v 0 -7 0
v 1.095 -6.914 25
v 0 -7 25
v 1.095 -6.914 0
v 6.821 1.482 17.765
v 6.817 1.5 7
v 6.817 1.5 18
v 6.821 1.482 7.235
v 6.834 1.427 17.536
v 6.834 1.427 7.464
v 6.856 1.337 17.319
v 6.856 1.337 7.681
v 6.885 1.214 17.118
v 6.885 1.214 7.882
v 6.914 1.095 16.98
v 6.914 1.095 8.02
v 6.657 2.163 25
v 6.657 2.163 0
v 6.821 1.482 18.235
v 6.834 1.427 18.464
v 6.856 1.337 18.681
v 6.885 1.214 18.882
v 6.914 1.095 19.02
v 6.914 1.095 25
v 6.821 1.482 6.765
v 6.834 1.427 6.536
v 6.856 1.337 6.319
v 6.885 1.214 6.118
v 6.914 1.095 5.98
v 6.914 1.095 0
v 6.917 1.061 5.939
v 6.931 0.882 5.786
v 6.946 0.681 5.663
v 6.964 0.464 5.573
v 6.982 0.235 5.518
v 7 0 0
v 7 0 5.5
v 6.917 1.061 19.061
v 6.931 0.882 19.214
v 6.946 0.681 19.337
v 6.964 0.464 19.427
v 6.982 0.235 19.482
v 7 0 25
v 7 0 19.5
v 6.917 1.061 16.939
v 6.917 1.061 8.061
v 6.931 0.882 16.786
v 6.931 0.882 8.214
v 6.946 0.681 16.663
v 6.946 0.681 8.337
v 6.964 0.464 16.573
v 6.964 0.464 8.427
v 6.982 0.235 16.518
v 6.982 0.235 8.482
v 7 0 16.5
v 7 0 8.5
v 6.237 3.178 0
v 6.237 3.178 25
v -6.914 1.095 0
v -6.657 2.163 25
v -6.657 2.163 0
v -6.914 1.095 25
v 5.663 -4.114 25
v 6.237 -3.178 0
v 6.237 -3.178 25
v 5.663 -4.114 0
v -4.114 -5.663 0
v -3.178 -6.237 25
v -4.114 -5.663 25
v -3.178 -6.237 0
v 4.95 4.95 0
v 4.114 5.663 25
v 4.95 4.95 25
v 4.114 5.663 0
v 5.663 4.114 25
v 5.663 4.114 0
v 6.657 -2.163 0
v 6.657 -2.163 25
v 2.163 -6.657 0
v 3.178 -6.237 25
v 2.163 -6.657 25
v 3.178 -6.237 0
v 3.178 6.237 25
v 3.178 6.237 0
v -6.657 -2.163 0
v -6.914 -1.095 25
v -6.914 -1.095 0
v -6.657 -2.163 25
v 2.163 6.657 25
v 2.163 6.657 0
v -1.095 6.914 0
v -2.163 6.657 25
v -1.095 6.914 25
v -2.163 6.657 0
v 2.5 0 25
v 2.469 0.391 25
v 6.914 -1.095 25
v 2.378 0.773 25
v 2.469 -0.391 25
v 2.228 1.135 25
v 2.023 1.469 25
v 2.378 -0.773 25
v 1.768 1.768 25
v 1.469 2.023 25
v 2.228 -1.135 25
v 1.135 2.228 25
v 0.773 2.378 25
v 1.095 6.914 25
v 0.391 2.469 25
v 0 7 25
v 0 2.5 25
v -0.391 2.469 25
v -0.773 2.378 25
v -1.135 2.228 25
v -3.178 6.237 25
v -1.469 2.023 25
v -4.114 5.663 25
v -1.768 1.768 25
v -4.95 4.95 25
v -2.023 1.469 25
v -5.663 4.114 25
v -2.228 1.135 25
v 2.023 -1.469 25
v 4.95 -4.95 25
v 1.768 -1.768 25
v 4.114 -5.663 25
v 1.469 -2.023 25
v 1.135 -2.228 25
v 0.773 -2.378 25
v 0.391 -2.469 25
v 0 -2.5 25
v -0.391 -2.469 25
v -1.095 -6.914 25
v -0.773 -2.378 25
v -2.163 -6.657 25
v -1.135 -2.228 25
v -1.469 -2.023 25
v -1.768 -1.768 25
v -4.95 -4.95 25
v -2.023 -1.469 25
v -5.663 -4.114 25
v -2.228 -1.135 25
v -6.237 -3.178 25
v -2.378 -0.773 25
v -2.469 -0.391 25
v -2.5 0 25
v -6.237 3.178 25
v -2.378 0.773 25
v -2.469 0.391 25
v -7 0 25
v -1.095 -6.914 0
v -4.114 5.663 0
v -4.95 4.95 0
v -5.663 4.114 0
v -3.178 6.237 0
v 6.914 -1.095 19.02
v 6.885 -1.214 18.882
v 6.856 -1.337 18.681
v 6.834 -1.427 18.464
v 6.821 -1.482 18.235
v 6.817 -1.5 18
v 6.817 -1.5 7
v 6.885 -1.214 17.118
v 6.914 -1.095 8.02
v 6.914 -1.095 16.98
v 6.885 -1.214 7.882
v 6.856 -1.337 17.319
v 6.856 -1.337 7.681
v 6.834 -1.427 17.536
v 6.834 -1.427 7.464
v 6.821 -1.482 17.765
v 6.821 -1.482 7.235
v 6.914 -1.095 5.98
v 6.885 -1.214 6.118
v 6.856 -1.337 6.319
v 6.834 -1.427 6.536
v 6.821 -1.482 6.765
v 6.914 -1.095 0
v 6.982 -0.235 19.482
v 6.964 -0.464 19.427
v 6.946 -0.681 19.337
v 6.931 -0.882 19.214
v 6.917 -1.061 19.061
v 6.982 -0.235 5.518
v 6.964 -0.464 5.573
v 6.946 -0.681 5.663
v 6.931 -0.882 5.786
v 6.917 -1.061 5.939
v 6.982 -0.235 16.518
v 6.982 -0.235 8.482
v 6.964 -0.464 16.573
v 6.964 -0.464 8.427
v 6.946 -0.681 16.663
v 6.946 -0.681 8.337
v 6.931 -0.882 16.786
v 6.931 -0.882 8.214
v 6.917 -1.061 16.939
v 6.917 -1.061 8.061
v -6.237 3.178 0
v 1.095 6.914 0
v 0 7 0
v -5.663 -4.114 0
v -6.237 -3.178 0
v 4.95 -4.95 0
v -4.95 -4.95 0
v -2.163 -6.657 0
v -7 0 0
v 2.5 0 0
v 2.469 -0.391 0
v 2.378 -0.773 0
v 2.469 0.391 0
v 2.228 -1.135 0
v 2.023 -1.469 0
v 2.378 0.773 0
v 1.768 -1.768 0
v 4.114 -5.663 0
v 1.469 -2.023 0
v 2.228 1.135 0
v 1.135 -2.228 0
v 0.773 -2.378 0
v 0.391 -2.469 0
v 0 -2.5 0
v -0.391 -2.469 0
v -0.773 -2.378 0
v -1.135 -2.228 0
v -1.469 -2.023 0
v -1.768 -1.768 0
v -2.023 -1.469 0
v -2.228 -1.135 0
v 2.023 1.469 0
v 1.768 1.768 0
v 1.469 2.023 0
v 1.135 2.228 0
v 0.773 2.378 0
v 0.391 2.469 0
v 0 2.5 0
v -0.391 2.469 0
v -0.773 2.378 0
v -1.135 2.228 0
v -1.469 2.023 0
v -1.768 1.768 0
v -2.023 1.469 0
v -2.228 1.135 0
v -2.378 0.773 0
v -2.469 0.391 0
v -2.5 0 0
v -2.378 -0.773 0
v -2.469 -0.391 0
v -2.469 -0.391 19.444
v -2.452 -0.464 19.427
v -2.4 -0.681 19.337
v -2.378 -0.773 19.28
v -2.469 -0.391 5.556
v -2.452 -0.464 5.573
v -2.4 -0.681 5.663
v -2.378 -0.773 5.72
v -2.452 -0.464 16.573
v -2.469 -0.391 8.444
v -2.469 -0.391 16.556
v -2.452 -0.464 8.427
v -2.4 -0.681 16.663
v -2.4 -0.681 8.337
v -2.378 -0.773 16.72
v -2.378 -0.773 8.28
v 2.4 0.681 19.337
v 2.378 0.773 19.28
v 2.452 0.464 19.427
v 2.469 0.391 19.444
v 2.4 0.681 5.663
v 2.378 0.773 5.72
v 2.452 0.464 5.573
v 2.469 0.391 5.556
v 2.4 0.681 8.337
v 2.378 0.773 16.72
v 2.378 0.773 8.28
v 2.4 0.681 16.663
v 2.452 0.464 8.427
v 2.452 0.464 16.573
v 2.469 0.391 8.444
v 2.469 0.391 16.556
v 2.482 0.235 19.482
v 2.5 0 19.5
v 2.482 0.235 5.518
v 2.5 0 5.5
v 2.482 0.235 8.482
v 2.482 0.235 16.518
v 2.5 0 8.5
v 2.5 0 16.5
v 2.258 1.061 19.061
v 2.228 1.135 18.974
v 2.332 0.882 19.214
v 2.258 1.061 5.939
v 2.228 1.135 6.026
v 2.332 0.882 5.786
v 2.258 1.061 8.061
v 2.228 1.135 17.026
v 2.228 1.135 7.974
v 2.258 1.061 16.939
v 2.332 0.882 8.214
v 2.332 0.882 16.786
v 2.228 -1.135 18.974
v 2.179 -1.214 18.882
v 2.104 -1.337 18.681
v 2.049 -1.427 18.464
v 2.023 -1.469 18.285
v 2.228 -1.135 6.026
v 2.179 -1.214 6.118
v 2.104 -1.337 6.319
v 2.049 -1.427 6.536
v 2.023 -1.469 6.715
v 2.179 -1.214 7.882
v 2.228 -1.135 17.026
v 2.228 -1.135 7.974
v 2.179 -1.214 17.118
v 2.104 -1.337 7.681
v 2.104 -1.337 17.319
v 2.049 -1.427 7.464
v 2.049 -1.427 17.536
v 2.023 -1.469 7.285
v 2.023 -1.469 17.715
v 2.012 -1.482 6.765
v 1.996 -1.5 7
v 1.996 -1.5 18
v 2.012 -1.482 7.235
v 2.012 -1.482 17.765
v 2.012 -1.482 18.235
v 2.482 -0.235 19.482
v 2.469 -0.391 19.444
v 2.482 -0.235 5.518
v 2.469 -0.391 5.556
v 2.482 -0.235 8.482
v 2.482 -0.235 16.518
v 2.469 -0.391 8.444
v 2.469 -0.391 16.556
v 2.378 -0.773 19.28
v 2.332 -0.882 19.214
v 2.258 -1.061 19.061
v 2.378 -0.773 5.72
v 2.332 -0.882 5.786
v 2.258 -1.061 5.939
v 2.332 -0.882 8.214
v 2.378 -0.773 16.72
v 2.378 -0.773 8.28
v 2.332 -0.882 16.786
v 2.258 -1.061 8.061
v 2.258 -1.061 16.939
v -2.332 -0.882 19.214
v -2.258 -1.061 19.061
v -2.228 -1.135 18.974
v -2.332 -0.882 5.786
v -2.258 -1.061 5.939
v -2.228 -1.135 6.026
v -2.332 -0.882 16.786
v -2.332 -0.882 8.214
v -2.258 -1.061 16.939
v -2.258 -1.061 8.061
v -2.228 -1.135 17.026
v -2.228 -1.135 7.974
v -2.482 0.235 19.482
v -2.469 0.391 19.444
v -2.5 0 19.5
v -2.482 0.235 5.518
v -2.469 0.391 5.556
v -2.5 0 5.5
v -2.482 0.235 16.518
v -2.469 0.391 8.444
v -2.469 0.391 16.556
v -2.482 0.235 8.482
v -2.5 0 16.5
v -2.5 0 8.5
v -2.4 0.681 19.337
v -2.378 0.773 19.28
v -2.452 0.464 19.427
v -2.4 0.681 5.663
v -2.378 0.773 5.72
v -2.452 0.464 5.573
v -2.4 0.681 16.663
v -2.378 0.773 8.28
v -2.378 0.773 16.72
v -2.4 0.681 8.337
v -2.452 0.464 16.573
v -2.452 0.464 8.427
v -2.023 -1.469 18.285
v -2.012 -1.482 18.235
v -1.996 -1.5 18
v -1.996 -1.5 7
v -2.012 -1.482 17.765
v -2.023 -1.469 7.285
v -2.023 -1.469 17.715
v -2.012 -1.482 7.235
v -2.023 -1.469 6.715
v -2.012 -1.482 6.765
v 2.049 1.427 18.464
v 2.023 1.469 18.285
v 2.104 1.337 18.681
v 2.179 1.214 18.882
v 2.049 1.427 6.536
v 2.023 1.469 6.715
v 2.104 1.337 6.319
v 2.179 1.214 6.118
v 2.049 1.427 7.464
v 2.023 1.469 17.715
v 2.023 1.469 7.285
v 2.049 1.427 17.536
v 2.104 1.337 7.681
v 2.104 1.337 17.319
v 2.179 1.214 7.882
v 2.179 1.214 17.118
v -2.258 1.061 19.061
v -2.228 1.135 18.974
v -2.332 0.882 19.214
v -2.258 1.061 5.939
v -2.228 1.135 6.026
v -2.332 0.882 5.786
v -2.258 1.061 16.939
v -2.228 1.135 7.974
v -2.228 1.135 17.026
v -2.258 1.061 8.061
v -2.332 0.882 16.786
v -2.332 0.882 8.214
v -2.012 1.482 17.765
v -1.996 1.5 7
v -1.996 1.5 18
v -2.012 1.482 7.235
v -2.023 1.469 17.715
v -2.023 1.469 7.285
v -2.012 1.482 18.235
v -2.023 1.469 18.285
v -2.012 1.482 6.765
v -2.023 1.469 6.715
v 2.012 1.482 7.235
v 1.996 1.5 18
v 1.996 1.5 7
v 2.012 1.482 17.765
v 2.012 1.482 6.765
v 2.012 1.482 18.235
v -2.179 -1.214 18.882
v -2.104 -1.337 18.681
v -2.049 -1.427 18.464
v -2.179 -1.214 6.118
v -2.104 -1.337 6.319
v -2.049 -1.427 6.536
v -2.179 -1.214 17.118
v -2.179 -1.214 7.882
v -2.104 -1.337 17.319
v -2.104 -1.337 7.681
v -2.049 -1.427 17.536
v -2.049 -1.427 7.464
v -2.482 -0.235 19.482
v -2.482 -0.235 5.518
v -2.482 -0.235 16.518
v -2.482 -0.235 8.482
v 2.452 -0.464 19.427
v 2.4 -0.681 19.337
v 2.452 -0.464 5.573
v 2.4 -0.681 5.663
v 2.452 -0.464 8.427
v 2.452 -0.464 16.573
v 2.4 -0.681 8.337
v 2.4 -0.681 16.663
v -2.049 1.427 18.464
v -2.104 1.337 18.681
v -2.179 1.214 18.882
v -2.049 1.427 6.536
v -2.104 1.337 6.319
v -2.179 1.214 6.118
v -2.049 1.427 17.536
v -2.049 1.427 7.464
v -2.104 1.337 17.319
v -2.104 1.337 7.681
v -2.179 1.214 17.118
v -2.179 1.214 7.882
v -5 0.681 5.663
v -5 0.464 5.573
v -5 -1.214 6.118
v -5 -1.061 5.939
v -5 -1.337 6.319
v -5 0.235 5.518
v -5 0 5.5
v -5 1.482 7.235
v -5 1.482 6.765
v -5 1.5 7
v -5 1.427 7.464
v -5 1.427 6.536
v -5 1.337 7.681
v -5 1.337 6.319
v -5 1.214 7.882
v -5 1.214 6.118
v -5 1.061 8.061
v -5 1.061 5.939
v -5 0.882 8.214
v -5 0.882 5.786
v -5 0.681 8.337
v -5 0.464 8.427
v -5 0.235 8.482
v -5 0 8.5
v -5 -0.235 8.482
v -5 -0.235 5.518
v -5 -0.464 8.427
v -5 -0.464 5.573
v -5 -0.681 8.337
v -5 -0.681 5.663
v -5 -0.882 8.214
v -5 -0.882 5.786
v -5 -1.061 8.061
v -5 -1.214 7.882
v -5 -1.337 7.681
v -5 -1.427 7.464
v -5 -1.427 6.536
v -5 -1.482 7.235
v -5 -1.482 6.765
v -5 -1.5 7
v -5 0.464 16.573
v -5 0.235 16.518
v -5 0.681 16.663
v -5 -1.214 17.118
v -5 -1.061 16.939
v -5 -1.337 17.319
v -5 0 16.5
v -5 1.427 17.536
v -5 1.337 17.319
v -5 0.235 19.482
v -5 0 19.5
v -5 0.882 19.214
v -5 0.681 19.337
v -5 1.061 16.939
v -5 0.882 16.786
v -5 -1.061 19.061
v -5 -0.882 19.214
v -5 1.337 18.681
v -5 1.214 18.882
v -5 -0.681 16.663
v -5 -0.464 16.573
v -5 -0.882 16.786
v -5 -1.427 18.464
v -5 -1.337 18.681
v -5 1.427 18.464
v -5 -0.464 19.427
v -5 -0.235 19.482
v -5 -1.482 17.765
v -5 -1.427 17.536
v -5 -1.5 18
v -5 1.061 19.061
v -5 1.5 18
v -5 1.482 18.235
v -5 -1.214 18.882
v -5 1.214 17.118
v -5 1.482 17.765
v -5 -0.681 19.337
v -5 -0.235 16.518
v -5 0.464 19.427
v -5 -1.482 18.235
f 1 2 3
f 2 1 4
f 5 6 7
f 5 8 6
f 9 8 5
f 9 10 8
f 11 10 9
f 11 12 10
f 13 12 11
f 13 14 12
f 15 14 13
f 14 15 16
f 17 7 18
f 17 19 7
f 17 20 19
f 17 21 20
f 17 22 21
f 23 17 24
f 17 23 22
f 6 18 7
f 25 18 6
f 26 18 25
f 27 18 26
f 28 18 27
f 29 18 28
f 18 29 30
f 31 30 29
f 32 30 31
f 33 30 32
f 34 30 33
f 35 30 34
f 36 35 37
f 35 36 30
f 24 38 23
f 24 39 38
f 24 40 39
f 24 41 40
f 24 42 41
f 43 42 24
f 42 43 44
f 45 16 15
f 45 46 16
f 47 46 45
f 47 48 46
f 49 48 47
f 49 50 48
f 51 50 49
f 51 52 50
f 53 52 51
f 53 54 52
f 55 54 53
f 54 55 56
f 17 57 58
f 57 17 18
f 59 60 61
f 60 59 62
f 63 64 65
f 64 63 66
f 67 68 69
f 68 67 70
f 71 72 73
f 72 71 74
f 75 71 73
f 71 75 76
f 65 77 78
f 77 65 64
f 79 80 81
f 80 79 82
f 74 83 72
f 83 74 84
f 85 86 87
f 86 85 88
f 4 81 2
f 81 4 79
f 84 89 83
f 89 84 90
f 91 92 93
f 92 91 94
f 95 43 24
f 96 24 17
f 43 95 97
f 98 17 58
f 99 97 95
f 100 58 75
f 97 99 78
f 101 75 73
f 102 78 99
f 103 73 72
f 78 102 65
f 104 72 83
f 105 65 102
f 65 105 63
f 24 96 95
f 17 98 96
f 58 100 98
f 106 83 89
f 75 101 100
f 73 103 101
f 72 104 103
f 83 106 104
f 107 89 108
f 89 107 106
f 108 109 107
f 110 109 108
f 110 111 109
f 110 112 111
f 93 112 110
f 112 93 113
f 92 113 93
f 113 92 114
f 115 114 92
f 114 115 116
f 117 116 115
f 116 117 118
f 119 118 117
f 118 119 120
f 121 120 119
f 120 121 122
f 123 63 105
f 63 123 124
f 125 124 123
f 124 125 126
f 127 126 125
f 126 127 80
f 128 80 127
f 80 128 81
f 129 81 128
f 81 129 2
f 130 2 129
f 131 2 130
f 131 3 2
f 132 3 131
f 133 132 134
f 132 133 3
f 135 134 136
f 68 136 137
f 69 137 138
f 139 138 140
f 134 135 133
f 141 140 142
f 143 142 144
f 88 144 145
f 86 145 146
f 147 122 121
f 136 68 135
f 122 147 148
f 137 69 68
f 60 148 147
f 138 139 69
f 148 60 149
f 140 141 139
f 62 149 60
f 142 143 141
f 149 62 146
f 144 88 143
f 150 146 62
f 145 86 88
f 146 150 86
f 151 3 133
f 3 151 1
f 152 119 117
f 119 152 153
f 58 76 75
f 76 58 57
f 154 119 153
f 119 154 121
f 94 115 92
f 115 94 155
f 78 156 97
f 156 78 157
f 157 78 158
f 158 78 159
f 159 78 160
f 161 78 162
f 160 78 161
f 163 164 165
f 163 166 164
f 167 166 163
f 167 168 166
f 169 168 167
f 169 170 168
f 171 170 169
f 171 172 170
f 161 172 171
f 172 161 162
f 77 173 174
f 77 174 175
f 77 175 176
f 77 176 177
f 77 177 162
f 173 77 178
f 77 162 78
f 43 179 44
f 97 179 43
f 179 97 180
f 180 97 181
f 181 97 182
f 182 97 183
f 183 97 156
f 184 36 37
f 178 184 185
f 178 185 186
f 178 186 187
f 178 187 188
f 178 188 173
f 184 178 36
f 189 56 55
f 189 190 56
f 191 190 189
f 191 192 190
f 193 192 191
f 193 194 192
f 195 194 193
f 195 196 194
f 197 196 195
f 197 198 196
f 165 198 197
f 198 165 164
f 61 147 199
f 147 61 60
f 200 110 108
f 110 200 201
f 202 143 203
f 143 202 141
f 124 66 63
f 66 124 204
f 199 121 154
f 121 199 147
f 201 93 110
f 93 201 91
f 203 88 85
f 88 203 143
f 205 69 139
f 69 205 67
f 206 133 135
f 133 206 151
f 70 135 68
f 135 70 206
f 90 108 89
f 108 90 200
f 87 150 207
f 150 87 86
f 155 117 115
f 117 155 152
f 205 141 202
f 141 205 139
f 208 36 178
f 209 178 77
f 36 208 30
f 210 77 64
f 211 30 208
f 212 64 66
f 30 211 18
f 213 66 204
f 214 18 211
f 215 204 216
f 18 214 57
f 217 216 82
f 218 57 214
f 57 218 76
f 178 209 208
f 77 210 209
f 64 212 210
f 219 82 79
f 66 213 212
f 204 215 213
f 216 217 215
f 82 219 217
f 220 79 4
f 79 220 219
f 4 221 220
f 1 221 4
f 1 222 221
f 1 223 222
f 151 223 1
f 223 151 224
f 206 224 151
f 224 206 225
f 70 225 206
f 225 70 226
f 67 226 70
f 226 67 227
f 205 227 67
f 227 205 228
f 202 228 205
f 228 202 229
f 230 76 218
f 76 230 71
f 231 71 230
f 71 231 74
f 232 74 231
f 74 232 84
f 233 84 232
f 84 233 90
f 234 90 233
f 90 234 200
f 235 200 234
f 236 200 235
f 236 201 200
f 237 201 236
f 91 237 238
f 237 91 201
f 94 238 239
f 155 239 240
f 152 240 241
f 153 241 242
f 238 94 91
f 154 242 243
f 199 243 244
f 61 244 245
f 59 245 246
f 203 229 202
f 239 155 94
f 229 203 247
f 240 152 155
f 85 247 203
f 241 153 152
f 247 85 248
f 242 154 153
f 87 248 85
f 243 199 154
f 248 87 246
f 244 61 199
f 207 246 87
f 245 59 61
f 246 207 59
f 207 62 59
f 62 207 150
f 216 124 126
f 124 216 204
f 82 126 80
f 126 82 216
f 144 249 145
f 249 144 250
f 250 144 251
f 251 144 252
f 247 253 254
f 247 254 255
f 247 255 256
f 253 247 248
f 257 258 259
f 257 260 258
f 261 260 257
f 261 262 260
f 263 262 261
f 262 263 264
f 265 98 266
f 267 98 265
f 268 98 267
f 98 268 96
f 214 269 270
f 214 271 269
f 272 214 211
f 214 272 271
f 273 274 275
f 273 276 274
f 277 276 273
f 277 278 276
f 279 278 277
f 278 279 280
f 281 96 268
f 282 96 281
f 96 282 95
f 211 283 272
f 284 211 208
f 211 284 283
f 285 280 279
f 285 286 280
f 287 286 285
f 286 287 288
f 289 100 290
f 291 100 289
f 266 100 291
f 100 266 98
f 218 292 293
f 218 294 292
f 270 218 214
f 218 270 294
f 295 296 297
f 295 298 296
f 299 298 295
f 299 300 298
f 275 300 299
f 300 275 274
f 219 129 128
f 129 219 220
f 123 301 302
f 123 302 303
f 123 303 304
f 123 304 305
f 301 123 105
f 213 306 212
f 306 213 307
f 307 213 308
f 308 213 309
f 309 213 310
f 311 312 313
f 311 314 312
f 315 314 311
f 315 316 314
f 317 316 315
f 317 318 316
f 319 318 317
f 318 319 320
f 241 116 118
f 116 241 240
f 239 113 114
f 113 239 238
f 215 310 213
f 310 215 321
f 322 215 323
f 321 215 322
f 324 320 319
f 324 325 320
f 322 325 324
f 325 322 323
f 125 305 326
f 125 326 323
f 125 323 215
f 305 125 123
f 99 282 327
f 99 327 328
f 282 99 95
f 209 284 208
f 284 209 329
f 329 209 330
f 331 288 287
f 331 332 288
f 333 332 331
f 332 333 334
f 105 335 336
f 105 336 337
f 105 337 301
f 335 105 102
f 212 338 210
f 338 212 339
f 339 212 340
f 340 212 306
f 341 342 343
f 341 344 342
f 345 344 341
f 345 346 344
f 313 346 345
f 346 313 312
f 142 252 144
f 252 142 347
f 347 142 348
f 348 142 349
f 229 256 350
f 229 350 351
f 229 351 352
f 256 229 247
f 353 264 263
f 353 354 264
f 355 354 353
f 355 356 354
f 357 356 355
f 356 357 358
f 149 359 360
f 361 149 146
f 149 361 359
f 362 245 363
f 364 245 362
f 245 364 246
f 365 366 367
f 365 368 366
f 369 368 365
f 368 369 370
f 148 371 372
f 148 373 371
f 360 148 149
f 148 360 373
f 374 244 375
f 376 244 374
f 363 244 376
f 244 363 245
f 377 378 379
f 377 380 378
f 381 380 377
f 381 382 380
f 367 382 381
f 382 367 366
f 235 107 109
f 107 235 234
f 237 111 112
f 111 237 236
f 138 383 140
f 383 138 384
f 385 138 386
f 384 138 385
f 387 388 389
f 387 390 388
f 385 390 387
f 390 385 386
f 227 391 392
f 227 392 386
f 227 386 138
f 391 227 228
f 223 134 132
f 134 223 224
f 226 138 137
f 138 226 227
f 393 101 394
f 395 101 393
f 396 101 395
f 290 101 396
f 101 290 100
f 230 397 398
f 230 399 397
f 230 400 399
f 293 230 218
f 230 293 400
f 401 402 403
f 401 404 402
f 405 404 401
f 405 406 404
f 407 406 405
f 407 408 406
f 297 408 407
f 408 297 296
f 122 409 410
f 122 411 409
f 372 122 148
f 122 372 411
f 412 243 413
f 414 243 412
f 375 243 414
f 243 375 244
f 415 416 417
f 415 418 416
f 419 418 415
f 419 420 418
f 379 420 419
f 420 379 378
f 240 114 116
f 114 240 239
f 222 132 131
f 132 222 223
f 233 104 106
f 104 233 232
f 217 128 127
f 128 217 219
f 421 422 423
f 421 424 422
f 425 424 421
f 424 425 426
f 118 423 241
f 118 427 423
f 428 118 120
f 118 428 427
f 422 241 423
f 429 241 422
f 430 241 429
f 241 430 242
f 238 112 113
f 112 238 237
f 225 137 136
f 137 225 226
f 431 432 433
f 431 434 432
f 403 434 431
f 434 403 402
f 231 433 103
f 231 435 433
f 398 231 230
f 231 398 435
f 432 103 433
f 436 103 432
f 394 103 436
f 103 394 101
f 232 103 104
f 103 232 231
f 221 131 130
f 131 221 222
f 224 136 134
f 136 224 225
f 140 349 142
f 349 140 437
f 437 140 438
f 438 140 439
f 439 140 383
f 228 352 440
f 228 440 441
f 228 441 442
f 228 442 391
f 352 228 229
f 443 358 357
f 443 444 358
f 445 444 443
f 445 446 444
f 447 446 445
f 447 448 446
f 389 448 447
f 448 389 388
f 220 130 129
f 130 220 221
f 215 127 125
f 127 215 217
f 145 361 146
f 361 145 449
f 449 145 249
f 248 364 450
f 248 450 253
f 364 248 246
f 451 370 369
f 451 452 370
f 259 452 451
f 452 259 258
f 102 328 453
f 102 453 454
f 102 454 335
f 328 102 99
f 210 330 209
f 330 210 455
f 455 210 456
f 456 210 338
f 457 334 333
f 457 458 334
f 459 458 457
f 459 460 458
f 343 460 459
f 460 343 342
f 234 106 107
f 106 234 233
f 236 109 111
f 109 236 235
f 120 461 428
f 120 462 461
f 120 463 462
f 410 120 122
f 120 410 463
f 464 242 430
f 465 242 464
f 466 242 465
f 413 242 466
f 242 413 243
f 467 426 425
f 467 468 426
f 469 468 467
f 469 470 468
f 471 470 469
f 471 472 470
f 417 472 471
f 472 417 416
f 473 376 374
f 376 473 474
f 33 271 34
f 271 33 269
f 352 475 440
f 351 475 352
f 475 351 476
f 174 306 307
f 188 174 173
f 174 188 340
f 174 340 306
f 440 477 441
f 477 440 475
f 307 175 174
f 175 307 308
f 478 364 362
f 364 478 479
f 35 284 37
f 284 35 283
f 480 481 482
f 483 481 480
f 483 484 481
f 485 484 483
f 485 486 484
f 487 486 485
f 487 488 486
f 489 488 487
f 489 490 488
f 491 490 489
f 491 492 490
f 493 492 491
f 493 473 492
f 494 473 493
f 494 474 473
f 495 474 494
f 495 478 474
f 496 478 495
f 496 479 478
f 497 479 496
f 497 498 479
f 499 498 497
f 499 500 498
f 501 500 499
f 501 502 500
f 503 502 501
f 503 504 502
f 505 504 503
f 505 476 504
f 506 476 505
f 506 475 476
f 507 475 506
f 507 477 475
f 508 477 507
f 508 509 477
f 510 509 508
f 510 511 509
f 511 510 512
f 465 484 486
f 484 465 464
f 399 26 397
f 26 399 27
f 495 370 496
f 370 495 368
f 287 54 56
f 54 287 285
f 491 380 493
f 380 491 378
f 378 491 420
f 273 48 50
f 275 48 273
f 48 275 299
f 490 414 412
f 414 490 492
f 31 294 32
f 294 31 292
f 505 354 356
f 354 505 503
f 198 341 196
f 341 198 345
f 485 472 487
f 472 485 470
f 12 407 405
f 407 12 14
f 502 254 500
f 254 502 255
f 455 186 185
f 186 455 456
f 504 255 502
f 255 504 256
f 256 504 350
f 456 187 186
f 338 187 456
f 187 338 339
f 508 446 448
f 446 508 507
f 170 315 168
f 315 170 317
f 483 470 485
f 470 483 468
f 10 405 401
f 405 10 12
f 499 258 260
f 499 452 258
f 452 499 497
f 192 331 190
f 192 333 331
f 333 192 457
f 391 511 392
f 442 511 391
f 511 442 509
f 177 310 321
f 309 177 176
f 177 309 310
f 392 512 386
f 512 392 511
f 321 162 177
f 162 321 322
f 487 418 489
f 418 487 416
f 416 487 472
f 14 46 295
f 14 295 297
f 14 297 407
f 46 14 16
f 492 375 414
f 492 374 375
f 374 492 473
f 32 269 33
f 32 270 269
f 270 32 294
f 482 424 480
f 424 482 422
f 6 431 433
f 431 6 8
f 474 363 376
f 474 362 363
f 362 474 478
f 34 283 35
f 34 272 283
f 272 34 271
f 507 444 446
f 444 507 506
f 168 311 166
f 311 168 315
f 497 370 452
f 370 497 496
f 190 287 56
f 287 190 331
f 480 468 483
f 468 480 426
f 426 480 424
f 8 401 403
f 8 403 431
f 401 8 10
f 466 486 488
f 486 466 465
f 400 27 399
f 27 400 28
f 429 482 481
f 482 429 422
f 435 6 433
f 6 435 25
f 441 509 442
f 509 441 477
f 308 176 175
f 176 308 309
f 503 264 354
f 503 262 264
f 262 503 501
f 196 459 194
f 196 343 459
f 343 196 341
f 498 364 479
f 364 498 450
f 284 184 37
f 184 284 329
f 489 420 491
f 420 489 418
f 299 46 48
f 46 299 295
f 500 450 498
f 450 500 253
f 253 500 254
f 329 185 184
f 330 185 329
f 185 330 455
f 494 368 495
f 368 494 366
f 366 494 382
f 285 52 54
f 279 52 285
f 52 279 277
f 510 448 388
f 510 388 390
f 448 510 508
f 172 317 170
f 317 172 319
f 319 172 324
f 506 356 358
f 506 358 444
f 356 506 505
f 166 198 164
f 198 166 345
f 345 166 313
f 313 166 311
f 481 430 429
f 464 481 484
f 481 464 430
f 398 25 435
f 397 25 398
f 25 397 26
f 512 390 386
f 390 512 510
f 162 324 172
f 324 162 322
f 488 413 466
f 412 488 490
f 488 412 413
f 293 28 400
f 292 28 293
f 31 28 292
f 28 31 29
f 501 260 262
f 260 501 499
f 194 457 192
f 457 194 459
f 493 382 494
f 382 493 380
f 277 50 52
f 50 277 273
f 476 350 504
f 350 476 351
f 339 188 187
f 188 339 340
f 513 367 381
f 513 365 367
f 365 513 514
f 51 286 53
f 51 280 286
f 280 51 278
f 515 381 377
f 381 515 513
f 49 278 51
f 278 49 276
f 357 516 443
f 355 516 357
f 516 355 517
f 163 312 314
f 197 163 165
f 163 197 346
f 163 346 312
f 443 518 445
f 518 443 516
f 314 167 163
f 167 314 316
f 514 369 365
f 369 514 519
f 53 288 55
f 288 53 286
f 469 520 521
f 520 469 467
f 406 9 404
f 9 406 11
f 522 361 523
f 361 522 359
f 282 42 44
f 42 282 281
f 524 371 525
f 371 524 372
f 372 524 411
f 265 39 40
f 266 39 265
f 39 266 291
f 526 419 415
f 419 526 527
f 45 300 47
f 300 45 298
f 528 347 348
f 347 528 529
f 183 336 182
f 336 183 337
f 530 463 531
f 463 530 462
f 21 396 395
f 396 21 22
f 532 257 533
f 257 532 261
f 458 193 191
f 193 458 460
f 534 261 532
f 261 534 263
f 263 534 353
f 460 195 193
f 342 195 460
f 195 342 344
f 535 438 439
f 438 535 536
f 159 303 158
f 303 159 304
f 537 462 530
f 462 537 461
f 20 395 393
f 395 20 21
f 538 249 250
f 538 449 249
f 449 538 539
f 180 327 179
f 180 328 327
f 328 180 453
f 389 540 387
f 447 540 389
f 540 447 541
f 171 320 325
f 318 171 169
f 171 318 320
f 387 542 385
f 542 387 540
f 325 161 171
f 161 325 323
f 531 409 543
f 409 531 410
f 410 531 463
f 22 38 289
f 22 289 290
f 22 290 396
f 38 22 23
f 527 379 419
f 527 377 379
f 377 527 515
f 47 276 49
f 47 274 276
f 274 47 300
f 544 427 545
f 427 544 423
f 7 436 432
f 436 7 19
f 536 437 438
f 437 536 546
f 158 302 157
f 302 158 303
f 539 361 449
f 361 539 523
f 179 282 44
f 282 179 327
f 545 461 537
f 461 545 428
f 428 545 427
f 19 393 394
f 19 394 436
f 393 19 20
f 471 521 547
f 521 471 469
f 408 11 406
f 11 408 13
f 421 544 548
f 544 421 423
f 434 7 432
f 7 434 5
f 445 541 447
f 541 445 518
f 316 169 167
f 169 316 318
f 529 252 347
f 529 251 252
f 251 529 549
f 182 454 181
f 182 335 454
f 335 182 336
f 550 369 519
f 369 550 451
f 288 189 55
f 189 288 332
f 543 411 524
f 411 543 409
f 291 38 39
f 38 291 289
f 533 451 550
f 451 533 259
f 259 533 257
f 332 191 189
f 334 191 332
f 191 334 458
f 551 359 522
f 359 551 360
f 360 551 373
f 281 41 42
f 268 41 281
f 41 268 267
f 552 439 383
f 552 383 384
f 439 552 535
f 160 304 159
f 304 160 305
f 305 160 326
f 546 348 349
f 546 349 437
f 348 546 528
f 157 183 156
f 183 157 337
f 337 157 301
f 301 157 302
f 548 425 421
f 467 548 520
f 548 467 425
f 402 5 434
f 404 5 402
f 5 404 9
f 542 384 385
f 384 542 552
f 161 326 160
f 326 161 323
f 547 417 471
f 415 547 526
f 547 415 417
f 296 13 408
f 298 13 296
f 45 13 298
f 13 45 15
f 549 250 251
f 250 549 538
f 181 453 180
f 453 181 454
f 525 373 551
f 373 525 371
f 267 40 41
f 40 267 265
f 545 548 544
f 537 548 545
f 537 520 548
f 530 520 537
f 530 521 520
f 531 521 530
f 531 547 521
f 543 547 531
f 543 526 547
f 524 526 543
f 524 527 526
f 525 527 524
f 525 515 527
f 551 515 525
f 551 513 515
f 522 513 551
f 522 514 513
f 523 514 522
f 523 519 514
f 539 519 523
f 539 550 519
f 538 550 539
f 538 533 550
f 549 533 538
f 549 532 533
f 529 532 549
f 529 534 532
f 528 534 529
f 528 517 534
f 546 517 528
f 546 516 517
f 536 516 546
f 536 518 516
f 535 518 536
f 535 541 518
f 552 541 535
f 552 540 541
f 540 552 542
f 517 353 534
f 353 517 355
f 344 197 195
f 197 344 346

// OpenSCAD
difference(){
cylinder(d=14,h=25,$fn=40);
translate([0,0,-10])cylinder(d=5,h=50,$fn=40);
translate([-5,0,7])rotate([0,90,0])cylinder(d=3,h=50,$fn=40);
translate([-5,0,18])rotate([0,90,0])cylinder(d=3,h=50,$fn=40);
}
